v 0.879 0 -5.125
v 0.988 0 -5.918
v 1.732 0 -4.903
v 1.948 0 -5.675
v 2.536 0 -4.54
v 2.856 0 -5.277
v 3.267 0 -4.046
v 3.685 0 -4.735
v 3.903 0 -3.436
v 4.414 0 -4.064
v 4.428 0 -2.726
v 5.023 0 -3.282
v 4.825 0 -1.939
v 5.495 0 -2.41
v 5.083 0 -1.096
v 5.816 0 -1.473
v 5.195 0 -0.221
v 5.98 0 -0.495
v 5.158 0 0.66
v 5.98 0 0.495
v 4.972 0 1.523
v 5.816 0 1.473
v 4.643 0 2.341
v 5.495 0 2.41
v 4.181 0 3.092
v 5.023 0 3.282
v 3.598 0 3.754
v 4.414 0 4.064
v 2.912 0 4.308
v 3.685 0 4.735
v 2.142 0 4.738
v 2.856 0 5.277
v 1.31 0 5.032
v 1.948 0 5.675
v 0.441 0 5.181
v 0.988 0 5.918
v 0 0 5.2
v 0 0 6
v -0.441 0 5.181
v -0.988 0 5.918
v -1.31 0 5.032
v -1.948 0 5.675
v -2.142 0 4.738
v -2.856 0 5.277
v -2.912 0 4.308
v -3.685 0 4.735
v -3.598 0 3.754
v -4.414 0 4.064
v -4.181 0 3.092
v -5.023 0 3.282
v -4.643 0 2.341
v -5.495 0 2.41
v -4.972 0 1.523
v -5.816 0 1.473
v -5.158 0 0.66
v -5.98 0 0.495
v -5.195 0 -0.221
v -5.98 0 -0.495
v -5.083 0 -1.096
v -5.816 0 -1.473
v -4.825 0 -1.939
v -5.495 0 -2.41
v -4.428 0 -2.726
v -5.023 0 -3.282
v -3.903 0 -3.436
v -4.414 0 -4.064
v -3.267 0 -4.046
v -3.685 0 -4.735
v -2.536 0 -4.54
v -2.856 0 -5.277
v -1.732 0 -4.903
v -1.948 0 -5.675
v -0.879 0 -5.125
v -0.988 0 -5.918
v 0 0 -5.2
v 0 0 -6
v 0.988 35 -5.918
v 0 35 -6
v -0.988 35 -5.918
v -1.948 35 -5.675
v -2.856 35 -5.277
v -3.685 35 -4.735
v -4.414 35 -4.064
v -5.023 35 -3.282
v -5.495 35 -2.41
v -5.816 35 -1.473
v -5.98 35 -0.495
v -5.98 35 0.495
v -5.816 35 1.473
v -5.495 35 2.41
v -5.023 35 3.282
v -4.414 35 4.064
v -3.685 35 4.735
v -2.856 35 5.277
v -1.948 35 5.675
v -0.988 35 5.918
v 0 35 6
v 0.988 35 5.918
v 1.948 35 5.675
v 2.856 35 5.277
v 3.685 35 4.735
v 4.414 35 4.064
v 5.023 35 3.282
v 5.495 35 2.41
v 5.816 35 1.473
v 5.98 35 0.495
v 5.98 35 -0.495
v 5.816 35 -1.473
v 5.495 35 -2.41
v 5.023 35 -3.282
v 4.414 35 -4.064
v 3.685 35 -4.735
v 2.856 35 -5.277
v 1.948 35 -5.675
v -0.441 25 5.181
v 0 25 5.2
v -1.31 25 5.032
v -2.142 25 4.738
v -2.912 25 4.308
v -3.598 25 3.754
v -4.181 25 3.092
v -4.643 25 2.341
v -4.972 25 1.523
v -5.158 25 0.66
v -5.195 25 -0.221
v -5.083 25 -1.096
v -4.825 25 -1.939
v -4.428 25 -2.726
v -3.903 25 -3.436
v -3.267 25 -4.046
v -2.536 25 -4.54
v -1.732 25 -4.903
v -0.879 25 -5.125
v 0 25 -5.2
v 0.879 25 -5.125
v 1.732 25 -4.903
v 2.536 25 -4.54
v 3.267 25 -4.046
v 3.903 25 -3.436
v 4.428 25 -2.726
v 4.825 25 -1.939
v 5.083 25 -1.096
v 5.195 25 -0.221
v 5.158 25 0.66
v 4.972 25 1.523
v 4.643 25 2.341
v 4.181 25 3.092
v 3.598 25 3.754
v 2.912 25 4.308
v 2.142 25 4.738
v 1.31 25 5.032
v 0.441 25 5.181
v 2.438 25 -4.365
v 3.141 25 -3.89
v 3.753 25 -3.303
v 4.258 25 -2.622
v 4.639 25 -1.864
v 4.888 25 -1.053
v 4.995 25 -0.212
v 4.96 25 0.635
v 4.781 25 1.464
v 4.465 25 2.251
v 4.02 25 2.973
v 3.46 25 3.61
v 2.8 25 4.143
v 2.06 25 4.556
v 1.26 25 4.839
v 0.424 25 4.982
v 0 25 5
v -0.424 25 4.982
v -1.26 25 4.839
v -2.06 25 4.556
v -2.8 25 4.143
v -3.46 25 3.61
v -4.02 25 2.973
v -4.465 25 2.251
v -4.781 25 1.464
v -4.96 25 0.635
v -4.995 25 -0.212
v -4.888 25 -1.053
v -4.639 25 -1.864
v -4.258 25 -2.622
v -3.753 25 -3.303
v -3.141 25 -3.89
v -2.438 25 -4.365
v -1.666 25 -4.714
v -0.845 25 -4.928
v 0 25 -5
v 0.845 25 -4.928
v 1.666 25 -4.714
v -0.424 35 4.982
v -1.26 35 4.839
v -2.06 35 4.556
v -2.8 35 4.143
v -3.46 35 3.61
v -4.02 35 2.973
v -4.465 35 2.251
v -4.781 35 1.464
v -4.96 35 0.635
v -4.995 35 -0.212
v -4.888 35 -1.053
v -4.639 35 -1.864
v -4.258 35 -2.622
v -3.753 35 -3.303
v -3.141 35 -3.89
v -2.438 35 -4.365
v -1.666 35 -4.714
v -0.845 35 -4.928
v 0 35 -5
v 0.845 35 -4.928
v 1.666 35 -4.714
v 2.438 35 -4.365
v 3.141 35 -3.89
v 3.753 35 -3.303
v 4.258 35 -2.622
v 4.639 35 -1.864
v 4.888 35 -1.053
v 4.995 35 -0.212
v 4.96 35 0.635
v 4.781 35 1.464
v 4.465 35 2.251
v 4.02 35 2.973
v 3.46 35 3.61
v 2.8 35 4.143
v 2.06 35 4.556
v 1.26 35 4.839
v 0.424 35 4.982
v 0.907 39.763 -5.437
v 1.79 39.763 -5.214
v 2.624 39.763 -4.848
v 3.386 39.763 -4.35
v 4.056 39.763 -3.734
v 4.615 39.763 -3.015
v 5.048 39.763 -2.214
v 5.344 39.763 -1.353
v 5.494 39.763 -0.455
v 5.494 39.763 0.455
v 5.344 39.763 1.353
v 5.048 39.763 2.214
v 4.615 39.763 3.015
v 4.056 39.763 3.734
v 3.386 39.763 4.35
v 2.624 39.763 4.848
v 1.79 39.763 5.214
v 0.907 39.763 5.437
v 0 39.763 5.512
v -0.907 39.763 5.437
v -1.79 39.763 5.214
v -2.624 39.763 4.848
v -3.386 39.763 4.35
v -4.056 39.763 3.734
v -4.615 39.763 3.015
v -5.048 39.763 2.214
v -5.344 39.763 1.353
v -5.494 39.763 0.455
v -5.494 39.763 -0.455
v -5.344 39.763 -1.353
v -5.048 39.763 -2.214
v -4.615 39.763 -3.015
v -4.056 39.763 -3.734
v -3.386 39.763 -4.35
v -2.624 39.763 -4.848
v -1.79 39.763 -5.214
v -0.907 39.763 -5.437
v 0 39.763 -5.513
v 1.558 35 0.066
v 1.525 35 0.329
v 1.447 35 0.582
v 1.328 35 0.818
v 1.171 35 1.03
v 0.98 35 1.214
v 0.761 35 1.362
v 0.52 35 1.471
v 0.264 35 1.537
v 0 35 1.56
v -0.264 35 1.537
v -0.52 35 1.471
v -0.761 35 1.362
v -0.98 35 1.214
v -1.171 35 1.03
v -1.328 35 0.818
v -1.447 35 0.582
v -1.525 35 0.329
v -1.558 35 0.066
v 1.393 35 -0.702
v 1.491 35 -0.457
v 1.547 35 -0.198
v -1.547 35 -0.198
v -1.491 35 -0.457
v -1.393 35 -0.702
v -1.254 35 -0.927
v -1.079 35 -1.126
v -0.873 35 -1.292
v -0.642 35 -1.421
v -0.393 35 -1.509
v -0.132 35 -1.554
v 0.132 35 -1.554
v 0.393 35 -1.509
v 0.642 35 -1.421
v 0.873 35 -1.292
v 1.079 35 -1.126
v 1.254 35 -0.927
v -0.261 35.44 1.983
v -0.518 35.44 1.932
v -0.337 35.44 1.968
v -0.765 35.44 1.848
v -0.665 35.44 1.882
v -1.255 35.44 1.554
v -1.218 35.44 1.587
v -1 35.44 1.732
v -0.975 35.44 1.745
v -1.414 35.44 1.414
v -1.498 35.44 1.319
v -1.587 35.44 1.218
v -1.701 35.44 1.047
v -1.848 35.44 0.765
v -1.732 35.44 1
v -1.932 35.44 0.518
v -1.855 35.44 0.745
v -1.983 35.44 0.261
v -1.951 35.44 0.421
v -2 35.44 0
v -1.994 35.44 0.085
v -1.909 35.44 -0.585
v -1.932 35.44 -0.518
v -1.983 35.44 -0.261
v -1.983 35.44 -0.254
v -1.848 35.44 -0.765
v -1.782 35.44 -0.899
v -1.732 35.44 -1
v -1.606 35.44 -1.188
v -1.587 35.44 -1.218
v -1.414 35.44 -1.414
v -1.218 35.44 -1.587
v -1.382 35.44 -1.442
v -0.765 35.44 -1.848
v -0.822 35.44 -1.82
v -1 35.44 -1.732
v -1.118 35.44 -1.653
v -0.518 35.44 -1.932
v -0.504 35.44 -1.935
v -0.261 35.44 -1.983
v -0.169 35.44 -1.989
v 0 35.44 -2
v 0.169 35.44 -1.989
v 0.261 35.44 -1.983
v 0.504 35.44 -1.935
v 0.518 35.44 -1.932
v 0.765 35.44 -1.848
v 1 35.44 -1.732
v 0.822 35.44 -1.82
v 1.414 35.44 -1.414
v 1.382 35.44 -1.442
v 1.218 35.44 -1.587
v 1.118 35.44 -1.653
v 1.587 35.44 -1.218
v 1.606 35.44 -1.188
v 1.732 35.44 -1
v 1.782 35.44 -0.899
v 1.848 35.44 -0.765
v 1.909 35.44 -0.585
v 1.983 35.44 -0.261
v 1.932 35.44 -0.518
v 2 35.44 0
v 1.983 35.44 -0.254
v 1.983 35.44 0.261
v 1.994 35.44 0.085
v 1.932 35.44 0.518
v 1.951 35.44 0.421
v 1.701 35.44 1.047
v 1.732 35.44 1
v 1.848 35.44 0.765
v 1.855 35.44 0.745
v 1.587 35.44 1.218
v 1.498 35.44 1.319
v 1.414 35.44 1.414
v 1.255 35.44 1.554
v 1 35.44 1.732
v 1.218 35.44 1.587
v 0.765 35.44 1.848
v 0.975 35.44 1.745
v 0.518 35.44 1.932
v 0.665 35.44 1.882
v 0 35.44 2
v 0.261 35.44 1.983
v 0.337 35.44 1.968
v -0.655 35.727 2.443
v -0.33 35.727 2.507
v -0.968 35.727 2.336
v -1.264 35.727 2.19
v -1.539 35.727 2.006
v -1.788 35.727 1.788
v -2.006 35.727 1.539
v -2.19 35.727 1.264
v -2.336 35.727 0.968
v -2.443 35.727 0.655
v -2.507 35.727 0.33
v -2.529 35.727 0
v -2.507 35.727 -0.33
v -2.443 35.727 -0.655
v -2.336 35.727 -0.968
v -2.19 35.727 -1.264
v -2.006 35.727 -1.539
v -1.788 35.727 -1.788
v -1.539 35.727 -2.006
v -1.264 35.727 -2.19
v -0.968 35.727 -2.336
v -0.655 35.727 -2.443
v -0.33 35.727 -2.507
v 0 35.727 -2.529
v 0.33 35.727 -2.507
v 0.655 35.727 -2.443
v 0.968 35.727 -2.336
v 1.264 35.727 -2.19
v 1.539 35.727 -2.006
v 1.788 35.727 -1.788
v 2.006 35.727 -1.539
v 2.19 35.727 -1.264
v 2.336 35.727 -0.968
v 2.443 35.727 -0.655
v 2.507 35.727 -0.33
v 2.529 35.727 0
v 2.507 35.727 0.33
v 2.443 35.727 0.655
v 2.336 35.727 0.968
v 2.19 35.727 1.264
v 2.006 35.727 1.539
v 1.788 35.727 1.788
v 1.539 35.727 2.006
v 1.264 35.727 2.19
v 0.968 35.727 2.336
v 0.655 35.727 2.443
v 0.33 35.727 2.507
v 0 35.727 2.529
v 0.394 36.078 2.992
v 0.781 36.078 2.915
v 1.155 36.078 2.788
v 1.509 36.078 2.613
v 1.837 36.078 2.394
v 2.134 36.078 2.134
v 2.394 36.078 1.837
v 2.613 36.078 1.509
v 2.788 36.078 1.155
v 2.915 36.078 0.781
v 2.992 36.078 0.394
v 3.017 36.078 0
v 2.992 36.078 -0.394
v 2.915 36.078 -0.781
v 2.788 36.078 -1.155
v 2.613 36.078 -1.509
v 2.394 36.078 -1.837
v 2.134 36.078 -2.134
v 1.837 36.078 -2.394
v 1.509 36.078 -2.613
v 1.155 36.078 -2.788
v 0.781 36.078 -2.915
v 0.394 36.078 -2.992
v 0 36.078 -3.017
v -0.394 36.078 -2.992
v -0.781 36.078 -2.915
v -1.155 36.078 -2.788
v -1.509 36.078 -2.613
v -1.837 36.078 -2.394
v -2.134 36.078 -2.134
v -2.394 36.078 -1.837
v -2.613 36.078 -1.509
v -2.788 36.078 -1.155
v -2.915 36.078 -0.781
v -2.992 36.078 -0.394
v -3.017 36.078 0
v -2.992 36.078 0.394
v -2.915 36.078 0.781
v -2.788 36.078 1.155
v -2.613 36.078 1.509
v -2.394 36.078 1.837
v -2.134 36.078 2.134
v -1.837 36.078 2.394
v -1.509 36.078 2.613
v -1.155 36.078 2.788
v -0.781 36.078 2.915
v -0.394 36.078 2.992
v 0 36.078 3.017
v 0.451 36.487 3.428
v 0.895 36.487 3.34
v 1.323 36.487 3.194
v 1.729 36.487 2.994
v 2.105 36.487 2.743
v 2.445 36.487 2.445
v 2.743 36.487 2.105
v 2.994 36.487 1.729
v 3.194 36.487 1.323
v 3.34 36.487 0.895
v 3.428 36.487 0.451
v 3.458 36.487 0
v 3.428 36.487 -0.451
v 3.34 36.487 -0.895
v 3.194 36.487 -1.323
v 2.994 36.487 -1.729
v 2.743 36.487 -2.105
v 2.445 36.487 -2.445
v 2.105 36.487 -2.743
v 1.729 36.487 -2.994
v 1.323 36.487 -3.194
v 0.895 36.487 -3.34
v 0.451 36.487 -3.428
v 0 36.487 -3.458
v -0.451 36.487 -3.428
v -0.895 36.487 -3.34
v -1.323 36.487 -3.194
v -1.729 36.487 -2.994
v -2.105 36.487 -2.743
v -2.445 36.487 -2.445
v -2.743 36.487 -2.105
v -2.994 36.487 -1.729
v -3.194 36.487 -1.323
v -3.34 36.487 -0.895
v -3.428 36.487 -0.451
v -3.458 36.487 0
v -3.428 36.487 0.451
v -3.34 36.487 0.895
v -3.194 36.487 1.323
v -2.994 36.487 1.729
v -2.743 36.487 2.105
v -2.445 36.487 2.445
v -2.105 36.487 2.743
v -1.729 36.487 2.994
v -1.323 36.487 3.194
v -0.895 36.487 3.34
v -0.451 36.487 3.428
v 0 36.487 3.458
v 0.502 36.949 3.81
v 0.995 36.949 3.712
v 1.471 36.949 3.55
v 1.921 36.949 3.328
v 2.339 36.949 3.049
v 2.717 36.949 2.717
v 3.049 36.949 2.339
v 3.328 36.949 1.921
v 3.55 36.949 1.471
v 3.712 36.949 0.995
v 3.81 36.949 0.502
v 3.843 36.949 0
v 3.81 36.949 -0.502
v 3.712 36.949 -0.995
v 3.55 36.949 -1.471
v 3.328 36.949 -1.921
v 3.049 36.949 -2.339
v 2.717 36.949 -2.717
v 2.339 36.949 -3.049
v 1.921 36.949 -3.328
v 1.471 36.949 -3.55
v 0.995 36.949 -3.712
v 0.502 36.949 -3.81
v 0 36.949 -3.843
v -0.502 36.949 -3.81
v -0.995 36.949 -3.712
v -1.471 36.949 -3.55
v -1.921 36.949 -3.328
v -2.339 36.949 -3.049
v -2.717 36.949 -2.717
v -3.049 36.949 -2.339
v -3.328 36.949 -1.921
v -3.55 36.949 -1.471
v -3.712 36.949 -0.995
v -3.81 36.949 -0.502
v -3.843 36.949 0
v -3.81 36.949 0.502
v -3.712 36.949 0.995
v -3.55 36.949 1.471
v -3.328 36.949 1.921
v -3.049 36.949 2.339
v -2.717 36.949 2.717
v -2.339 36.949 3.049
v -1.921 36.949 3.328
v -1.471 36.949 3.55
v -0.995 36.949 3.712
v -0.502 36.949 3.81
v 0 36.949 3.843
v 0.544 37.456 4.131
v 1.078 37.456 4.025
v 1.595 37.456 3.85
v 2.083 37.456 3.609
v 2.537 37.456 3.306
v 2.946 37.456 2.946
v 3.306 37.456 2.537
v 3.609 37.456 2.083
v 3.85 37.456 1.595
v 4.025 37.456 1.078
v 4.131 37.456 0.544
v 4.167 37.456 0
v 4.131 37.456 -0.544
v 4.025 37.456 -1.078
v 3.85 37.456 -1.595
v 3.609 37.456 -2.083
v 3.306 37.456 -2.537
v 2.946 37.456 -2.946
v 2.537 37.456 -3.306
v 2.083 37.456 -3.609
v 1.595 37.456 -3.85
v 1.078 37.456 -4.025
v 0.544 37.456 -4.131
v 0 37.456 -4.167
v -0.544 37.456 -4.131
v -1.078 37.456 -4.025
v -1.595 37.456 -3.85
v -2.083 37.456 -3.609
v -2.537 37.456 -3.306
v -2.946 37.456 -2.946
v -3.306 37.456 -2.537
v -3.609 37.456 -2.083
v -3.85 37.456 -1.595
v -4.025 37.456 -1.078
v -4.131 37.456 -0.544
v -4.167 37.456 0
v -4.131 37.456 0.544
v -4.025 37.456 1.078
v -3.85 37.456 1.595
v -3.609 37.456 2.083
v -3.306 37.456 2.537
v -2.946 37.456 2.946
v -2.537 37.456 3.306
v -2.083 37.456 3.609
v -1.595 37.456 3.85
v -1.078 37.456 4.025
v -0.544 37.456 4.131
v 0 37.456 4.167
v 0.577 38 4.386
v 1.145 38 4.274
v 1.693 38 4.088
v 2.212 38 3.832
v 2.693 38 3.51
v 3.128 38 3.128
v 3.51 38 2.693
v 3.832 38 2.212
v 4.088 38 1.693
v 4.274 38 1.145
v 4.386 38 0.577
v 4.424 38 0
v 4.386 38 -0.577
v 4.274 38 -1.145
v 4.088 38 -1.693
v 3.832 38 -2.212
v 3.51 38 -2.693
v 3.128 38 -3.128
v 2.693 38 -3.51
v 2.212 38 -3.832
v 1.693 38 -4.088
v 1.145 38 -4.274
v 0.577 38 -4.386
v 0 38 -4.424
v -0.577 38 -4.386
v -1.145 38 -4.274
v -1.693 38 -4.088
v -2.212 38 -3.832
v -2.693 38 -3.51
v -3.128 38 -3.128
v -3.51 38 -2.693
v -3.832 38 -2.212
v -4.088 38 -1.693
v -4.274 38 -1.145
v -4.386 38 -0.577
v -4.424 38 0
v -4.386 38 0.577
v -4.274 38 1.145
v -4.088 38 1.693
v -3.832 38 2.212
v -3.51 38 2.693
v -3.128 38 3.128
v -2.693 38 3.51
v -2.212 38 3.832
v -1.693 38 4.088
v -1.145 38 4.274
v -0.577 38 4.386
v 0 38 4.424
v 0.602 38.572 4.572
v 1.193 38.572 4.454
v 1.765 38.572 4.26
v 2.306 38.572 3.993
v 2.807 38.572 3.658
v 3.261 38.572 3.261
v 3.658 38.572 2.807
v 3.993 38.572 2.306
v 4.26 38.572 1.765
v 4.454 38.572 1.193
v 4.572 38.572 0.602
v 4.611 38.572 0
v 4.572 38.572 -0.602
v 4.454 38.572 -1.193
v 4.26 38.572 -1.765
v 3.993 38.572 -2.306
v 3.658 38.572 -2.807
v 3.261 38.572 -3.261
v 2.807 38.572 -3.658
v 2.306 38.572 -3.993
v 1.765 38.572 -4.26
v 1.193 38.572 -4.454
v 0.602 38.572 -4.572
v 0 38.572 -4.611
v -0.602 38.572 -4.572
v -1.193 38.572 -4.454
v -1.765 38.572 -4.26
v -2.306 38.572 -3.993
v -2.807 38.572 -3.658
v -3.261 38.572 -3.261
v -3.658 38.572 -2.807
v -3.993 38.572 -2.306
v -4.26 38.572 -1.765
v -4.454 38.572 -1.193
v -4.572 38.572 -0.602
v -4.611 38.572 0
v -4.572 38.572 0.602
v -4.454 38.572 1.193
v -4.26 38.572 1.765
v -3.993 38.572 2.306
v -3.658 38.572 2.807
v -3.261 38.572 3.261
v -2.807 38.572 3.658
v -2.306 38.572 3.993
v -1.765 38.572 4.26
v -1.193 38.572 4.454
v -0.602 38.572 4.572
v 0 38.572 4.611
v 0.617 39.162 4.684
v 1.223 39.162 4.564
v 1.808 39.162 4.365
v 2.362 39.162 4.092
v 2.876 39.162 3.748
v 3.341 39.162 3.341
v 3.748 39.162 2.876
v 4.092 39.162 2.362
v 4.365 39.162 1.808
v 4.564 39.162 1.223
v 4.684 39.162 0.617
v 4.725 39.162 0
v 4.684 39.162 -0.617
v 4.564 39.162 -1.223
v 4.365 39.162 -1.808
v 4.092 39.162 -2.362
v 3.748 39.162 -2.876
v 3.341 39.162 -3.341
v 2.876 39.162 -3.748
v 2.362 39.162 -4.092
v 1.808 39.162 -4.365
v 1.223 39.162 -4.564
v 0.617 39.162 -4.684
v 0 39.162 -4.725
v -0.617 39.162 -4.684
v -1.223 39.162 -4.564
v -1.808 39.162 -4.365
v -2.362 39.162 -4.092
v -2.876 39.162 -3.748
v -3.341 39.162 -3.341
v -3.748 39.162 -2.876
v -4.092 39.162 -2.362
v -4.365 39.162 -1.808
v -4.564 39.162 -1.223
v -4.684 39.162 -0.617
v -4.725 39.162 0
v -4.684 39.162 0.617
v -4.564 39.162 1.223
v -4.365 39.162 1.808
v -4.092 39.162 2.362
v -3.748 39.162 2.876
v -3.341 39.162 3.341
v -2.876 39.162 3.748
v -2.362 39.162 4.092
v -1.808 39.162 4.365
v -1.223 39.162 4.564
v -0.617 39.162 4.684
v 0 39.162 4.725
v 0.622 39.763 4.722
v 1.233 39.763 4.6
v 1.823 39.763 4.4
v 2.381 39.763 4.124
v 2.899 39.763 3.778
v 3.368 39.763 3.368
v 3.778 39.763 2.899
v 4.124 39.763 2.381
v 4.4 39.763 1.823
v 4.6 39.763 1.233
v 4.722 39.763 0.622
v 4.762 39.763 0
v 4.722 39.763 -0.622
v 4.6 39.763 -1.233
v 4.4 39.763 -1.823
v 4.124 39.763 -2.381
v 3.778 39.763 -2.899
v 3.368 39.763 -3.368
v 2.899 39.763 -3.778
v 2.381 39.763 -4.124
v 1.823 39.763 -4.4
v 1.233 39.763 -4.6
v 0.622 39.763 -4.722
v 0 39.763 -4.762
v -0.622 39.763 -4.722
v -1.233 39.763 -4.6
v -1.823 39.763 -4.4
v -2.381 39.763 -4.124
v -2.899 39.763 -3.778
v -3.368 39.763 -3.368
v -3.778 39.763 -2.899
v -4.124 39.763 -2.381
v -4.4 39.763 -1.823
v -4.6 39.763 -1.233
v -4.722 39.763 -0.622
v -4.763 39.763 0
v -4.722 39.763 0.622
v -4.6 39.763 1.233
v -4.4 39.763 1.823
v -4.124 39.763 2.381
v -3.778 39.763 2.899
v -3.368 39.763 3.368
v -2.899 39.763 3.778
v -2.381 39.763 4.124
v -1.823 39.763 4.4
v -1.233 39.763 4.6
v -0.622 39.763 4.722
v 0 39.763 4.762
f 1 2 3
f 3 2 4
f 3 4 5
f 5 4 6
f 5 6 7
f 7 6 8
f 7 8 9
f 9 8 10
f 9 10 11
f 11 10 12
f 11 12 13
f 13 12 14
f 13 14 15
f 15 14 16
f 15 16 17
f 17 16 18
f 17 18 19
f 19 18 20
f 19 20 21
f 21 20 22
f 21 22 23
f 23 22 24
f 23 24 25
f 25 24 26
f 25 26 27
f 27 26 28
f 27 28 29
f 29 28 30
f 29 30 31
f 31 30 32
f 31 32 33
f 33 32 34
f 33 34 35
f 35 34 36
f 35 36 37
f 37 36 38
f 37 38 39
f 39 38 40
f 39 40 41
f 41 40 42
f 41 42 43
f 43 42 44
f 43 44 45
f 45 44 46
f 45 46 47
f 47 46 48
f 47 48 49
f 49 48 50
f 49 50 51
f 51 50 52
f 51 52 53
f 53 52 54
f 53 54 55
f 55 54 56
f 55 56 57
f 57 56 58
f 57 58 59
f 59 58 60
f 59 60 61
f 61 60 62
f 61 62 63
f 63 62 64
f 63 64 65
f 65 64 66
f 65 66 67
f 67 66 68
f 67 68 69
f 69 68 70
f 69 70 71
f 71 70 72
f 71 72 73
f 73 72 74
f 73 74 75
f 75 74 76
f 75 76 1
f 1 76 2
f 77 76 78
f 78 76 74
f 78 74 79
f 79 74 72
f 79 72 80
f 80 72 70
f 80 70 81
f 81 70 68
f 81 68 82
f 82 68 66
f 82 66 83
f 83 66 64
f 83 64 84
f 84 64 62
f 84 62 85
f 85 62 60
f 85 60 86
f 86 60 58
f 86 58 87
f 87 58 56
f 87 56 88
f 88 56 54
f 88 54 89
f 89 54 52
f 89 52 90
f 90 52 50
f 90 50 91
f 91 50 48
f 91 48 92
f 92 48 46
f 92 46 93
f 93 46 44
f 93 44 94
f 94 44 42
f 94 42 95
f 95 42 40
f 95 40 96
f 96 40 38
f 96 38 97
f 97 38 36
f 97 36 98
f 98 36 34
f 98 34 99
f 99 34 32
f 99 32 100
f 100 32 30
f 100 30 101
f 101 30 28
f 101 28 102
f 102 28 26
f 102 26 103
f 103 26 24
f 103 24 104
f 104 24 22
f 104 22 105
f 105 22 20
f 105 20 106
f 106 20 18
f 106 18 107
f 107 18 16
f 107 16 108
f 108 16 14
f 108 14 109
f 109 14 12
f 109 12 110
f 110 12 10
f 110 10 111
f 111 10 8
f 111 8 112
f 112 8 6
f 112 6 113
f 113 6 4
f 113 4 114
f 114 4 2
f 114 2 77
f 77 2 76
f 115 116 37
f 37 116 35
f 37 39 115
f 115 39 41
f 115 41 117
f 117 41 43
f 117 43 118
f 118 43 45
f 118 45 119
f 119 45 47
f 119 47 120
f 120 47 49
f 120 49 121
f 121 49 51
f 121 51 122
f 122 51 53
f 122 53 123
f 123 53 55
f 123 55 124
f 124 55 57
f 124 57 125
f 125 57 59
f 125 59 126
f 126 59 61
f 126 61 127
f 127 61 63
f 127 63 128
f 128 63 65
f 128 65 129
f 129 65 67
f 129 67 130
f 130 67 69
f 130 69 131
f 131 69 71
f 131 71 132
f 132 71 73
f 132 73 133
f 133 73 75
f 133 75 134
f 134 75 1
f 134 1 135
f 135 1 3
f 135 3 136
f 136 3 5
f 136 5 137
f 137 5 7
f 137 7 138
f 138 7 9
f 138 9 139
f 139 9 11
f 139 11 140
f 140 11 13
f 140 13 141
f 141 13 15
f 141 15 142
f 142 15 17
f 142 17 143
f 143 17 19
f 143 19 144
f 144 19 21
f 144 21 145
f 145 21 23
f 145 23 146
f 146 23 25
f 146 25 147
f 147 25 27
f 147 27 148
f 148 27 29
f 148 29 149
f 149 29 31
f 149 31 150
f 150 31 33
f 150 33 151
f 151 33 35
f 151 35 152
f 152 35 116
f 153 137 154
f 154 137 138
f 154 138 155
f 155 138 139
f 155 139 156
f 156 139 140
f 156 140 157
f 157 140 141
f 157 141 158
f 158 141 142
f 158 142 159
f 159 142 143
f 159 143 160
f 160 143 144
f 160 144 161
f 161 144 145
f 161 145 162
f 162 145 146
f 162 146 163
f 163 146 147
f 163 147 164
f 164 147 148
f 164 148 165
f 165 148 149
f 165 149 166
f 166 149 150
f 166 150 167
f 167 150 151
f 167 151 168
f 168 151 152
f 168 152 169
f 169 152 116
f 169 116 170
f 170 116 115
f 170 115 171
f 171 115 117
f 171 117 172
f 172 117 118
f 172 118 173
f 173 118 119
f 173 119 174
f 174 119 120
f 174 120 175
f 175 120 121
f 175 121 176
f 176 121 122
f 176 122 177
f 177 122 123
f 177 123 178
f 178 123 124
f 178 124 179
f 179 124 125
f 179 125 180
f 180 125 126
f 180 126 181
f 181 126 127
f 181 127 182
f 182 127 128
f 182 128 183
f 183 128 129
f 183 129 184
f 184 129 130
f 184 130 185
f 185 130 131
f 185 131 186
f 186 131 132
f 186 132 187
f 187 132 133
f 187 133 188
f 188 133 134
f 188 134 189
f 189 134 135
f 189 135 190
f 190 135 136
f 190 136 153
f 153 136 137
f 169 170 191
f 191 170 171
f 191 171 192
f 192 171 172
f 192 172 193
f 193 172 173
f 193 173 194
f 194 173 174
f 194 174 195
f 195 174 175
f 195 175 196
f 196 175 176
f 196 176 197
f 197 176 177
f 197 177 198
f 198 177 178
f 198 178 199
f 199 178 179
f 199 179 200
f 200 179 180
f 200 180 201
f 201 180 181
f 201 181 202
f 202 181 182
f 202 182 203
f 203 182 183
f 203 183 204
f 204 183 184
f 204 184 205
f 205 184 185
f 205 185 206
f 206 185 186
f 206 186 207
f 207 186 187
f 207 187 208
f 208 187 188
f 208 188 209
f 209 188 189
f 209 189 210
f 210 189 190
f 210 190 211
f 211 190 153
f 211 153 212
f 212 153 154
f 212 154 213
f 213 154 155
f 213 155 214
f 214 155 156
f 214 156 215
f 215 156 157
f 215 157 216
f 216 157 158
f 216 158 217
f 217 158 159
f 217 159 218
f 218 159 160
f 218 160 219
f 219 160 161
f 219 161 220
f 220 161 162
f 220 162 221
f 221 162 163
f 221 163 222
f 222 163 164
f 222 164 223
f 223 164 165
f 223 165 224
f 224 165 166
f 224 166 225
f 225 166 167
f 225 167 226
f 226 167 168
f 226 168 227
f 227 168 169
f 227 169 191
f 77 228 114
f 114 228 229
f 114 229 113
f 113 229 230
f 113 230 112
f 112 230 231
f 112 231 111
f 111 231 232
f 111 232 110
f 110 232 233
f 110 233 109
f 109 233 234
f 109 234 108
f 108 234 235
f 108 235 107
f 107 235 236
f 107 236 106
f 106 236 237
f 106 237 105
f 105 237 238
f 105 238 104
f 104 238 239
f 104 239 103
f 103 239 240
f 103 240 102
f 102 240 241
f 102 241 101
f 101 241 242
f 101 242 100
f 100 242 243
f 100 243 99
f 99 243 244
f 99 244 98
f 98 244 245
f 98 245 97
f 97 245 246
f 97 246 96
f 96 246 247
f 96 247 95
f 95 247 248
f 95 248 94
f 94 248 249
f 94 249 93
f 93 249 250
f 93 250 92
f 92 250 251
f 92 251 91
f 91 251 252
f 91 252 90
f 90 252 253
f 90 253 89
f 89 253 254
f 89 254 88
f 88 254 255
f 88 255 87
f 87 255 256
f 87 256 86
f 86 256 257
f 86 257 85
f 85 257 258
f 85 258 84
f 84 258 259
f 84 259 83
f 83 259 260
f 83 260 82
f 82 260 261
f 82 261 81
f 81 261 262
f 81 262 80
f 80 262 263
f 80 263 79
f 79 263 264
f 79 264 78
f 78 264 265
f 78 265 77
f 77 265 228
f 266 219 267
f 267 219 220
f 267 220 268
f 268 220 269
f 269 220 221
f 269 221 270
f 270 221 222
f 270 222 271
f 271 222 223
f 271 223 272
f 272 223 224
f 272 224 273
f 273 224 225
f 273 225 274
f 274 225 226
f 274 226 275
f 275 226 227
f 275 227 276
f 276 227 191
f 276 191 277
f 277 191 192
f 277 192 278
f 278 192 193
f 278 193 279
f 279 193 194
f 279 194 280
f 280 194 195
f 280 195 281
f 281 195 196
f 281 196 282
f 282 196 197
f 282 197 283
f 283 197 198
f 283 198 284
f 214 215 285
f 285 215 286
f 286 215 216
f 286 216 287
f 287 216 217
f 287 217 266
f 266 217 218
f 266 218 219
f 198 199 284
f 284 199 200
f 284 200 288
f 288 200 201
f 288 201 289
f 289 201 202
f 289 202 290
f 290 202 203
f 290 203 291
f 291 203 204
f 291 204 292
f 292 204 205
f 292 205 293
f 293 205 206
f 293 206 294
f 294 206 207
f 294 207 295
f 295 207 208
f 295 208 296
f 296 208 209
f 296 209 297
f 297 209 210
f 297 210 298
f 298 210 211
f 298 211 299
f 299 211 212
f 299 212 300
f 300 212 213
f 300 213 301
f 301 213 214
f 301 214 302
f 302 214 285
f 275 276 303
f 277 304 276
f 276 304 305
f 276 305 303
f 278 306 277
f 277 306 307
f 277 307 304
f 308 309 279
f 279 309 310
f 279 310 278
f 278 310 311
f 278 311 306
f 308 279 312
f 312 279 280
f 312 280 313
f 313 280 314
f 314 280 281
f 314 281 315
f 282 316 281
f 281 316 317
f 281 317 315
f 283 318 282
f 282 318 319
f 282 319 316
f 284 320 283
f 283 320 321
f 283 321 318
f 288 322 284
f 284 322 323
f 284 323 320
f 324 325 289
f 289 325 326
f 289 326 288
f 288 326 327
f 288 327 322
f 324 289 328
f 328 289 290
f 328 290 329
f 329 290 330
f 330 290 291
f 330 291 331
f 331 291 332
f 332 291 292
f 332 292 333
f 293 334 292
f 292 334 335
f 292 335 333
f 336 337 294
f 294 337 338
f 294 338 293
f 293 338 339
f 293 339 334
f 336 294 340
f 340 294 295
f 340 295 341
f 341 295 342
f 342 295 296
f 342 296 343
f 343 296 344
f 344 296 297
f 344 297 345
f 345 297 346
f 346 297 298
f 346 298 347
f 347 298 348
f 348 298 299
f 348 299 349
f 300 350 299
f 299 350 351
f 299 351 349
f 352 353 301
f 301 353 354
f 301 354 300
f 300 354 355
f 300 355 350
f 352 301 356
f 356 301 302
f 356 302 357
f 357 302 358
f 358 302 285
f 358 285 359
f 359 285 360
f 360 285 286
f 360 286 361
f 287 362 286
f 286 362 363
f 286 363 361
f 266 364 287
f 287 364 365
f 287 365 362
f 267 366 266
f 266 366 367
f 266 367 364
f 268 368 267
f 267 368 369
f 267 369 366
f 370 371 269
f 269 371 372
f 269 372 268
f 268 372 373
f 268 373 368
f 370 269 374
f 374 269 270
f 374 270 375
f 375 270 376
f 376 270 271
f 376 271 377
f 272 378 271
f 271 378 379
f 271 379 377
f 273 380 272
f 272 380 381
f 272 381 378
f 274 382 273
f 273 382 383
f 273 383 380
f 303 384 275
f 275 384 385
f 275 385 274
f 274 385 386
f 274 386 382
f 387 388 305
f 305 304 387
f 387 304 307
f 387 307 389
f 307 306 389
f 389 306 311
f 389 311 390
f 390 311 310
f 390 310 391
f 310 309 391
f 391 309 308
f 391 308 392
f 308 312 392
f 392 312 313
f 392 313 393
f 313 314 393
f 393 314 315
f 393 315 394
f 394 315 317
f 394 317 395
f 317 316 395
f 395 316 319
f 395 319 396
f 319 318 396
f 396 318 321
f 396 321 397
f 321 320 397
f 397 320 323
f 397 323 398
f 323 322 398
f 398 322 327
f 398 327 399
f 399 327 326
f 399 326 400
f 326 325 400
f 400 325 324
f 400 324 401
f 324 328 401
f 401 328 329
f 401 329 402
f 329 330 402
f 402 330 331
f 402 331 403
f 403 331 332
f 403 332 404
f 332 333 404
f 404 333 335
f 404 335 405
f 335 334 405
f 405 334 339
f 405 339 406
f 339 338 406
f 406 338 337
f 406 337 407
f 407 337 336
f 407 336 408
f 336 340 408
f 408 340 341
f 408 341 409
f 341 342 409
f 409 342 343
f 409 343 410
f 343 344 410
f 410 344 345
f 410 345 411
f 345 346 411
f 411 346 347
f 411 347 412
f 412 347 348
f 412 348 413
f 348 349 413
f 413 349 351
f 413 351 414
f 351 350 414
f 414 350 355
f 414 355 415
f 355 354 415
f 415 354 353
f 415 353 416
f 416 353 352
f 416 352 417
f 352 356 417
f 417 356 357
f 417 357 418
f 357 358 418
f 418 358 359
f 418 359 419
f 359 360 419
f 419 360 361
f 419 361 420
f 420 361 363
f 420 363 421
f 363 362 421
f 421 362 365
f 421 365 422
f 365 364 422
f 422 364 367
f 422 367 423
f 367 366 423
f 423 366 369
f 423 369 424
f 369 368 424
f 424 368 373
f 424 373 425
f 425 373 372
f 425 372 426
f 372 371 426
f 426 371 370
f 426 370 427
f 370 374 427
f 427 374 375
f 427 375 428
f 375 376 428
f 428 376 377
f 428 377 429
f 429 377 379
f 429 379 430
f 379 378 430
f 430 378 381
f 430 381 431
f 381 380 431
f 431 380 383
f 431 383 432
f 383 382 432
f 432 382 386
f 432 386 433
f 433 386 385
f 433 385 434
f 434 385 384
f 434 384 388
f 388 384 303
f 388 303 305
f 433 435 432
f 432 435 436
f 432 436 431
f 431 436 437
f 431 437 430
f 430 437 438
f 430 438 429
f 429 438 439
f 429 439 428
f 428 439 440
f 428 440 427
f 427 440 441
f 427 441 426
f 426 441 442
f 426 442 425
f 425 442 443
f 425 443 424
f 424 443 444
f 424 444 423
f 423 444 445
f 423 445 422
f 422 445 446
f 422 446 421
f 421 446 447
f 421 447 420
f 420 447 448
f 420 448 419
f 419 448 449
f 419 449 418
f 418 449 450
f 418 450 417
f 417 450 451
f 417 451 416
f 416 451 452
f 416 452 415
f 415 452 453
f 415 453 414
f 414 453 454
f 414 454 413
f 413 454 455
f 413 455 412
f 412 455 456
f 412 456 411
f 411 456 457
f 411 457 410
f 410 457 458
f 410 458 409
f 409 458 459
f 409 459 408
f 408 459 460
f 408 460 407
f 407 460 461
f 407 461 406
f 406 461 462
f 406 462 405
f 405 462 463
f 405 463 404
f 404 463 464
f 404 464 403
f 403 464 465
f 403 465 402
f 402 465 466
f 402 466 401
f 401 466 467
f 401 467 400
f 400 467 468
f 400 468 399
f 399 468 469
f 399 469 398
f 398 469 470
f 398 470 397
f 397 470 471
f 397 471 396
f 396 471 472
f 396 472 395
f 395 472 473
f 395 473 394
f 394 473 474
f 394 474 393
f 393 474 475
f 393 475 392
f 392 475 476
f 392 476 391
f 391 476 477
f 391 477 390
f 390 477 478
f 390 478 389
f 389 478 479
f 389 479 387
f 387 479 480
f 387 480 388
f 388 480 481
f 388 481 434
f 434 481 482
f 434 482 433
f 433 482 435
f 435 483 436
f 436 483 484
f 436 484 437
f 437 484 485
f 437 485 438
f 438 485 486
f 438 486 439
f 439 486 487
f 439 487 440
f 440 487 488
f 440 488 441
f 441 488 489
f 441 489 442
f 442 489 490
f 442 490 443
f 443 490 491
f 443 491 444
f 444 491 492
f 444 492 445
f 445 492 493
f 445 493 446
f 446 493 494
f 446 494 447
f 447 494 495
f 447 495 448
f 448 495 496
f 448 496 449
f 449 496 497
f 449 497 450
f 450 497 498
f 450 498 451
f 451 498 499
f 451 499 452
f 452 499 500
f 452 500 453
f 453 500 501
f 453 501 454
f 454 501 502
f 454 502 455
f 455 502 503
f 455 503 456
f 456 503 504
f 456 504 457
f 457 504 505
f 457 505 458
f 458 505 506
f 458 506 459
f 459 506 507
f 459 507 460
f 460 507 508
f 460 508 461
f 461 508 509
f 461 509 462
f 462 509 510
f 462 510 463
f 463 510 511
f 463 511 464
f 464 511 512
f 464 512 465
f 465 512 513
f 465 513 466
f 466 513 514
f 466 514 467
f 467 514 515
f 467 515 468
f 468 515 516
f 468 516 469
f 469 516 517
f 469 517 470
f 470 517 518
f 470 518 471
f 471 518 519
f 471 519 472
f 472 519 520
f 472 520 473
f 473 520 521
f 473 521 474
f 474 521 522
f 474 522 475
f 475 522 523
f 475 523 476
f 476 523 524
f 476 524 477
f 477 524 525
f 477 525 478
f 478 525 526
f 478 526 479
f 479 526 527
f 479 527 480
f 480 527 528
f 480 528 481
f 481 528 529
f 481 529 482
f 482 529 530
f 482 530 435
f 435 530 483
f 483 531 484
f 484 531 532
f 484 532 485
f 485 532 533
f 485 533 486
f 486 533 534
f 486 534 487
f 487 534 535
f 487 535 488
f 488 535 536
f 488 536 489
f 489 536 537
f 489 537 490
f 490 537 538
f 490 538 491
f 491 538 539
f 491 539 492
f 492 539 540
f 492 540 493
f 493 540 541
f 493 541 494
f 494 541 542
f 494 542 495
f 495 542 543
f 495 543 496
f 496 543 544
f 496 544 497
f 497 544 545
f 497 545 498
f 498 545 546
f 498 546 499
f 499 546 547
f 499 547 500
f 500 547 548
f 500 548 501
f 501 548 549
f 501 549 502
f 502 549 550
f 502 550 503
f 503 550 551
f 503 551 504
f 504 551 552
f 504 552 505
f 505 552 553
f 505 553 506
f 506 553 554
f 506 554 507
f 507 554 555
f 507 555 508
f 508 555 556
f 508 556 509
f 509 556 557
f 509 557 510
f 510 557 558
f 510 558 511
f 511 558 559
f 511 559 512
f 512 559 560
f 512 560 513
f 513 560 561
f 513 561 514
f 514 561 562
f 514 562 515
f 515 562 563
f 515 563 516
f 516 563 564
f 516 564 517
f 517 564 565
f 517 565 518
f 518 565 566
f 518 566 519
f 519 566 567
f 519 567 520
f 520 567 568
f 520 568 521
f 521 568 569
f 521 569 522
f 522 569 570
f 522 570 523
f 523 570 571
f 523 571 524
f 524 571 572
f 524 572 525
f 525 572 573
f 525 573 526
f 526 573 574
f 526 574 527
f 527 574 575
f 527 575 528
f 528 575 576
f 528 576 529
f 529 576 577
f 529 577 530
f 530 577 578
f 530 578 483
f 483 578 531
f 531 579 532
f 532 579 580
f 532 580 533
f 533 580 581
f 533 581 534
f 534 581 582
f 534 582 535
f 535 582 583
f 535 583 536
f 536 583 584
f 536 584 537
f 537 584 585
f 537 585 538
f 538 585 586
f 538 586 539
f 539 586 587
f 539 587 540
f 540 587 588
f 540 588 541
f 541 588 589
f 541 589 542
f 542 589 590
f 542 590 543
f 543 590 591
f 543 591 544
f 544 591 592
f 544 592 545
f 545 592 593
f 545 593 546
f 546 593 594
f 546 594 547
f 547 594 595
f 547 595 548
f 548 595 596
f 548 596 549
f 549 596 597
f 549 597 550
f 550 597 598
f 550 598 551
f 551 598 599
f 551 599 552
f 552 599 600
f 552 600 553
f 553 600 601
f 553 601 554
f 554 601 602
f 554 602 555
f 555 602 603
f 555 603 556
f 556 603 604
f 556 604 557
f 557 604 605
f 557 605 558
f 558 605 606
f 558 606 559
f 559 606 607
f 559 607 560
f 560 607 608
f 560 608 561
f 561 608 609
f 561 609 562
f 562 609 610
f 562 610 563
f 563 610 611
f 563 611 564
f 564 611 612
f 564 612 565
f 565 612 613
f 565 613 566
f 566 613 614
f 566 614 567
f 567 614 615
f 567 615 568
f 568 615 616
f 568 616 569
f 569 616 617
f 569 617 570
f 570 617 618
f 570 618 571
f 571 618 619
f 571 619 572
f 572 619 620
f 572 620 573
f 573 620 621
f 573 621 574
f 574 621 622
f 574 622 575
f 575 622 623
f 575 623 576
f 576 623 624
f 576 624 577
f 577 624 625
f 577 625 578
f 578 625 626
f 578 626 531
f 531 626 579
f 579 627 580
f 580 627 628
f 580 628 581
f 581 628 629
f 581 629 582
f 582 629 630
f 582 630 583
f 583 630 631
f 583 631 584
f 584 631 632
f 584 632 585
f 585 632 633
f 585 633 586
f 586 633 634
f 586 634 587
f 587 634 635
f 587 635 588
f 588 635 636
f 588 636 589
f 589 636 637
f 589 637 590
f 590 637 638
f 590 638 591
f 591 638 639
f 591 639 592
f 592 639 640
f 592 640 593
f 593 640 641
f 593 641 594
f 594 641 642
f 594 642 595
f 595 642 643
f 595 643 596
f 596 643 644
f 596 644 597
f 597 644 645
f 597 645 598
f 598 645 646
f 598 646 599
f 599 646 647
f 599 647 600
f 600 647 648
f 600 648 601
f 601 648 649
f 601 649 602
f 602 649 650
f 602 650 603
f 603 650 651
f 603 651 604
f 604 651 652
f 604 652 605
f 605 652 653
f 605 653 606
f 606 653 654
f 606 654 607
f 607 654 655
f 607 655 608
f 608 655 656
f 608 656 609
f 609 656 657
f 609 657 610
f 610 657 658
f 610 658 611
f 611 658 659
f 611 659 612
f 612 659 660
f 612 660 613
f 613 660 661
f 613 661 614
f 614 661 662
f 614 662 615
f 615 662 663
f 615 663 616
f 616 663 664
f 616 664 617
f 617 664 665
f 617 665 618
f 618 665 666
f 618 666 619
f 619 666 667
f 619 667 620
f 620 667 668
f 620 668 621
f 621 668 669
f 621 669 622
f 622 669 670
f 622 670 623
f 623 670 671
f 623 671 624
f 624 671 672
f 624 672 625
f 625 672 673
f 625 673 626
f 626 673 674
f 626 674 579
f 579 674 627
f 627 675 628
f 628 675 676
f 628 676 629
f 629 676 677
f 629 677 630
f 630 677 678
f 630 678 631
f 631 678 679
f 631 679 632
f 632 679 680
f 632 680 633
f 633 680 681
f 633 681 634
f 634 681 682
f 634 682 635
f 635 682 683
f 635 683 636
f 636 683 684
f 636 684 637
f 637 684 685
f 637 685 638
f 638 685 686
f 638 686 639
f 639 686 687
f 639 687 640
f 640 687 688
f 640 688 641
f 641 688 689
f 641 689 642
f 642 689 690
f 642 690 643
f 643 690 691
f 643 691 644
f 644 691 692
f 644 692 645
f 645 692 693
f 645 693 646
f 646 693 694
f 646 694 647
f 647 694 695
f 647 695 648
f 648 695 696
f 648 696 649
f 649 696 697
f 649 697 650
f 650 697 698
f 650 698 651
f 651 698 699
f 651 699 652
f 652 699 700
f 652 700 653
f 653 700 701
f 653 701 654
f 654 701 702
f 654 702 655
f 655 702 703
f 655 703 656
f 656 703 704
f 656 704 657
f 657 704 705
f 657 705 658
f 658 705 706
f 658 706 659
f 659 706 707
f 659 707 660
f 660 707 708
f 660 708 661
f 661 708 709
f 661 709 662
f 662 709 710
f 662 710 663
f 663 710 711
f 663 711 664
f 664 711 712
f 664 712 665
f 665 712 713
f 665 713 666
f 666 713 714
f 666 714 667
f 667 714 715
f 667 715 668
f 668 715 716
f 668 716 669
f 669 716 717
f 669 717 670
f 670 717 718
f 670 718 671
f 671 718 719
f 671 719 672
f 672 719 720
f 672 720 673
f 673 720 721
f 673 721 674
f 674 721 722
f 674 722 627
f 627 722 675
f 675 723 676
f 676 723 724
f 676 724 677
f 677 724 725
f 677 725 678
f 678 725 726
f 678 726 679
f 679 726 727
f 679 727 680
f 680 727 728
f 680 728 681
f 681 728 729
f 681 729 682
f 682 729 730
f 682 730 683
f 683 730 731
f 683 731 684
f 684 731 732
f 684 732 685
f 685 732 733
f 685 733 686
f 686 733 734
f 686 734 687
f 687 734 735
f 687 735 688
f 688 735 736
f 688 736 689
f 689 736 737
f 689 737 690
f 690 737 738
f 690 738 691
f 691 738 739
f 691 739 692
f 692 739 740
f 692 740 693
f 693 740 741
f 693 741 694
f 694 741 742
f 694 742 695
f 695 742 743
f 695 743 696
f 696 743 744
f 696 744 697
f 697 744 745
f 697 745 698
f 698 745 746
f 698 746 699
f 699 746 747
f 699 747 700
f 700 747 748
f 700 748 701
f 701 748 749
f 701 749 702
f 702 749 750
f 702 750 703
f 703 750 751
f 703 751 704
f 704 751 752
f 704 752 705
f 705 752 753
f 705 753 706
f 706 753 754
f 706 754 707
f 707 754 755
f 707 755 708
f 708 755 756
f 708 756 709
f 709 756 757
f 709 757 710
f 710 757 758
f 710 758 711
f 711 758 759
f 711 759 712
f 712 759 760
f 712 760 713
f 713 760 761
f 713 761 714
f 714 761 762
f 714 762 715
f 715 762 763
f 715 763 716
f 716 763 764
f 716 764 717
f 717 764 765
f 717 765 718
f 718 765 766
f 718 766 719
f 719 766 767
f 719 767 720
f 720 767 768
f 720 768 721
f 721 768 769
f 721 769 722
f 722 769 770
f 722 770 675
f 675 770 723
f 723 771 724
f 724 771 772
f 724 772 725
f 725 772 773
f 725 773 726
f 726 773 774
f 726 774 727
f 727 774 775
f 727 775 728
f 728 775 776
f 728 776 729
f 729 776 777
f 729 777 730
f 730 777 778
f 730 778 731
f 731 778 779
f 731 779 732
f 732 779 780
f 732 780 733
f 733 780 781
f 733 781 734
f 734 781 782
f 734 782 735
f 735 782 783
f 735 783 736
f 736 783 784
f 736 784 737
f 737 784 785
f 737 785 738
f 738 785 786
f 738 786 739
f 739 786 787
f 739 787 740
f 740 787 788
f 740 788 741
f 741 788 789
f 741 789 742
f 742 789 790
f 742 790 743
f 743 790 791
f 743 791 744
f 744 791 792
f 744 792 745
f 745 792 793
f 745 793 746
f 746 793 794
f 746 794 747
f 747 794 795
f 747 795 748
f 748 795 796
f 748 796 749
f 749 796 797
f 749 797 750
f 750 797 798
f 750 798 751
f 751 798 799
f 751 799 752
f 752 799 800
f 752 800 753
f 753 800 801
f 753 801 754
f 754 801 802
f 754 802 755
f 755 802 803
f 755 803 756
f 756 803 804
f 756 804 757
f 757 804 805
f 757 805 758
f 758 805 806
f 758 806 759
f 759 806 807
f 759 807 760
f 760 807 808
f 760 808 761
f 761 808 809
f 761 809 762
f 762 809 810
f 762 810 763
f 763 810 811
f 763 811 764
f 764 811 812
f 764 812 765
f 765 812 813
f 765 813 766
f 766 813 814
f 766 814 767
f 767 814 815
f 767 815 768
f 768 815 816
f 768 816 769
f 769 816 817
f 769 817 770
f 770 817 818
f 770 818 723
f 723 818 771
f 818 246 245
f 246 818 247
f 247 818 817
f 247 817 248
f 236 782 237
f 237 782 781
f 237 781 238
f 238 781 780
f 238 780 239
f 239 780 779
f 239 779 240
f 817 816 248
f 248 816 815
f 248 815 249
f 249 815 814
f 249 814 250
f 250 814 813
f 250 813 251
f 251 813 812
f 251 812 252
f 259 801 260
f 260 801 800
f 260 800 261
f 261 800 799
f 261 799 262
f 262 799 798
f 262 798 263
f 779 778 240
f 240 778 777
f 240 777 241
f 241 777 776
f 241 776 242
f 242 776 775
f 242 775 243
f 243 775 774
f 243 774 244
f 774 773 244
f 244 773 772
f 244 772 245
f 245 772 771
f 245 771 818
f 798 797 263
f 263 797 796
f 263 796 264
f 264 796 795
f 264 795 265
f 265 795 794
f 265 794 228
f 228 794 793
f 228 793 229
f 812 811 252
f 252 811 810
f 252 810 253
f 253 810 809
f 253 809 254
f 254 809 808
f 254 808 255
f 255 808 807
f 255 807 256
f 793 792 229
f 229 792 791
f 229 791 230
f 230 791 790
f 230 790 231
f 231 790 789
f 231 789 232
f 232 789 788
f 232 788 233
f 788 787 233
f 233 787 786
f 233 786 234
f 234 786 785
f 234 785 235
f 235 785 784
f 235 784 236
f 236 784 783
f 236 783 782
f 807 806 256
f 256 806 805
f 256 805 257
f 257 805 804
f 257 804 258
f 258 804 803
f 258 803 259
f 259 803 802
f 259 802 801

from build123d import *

# Parameters (mm, degrees)
SKETCH1_R           = 6
SKETCH1_R_2         = 5.2
BOSS_EXTRUDE1_DEPTH = 25
SKETCH2_R           = 6
SKETCH2_R_2         = 5
BOSS_EXTRUDE2_DEPTH = 10


with BuildPart() as part:
    # Sketch1 → Boss-Extrude1 (new body)
    with BuildSketch(Plane(origin=(0, 0, 0), x_dir=(1, 0, 0), z_dir=(0, 1, 0))):
        Circle(SKETCH1_R)
        Circle(SKETCH1_R_2, mode=Mode.SUBTRACT)
    extrude(amount=BOSS_EXTRUDE1_DEPTH)

    # Sketch2 → Boss-Extrude2 (add)
    with BuildSketch(Plane(origin=(0, 25, 0), x_dir=(1, 0, 0), z_dir=(0, 1, 0))):
        Circle(SKETCH2_R)
        Circle(SKETCH2_R_2, mode=Mode.SUBTRACT)
    extrude(amount=BOSS_EXTRUDE2_DEPTH)

    # Sketch3 → Revolve2 (revolve)
    with BuildSketch(Plane(origin=(0, 0, 0), x_dir=(0, 0, -1), z_dir=(1, 0, 0))):
        with BuildLine():
            Line((-6, 35), (-2, 35))
            Line((-2, 35), (-1.559699238, 35))
            Line((-1.559699238, 35), (-2, 35.440300762))
            ThreePointArc((-2, 35.440300762), (-4.012879655, 37.197699204), (-4.7625, 39.7625))
            Line((-4.7625, 39.7625), (-5.5125, 39.7625))
            Line((-5.5125, 39.7625), (-6, 35))
        make_face()
    revolve(axis=Axis((0, 33.973403882, 0), (0, -1, 0)))


solid = part.part
